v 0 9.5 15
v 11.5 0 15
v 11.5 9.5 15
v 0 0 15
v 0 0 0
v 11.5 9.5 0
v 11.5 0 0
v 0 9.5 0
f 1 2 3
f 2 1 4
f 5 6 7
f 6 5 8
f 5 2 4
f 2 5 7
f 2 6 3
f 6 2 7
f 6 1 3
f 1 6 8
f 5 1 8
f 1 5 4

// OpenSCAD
THICKNESS = 6.5;
LENGTH = 15;
WALL = 2.5;
WIDTH = 7;


cube([WALL*2+THICKNESS, WALL+WIDTH, LENGTH]);
